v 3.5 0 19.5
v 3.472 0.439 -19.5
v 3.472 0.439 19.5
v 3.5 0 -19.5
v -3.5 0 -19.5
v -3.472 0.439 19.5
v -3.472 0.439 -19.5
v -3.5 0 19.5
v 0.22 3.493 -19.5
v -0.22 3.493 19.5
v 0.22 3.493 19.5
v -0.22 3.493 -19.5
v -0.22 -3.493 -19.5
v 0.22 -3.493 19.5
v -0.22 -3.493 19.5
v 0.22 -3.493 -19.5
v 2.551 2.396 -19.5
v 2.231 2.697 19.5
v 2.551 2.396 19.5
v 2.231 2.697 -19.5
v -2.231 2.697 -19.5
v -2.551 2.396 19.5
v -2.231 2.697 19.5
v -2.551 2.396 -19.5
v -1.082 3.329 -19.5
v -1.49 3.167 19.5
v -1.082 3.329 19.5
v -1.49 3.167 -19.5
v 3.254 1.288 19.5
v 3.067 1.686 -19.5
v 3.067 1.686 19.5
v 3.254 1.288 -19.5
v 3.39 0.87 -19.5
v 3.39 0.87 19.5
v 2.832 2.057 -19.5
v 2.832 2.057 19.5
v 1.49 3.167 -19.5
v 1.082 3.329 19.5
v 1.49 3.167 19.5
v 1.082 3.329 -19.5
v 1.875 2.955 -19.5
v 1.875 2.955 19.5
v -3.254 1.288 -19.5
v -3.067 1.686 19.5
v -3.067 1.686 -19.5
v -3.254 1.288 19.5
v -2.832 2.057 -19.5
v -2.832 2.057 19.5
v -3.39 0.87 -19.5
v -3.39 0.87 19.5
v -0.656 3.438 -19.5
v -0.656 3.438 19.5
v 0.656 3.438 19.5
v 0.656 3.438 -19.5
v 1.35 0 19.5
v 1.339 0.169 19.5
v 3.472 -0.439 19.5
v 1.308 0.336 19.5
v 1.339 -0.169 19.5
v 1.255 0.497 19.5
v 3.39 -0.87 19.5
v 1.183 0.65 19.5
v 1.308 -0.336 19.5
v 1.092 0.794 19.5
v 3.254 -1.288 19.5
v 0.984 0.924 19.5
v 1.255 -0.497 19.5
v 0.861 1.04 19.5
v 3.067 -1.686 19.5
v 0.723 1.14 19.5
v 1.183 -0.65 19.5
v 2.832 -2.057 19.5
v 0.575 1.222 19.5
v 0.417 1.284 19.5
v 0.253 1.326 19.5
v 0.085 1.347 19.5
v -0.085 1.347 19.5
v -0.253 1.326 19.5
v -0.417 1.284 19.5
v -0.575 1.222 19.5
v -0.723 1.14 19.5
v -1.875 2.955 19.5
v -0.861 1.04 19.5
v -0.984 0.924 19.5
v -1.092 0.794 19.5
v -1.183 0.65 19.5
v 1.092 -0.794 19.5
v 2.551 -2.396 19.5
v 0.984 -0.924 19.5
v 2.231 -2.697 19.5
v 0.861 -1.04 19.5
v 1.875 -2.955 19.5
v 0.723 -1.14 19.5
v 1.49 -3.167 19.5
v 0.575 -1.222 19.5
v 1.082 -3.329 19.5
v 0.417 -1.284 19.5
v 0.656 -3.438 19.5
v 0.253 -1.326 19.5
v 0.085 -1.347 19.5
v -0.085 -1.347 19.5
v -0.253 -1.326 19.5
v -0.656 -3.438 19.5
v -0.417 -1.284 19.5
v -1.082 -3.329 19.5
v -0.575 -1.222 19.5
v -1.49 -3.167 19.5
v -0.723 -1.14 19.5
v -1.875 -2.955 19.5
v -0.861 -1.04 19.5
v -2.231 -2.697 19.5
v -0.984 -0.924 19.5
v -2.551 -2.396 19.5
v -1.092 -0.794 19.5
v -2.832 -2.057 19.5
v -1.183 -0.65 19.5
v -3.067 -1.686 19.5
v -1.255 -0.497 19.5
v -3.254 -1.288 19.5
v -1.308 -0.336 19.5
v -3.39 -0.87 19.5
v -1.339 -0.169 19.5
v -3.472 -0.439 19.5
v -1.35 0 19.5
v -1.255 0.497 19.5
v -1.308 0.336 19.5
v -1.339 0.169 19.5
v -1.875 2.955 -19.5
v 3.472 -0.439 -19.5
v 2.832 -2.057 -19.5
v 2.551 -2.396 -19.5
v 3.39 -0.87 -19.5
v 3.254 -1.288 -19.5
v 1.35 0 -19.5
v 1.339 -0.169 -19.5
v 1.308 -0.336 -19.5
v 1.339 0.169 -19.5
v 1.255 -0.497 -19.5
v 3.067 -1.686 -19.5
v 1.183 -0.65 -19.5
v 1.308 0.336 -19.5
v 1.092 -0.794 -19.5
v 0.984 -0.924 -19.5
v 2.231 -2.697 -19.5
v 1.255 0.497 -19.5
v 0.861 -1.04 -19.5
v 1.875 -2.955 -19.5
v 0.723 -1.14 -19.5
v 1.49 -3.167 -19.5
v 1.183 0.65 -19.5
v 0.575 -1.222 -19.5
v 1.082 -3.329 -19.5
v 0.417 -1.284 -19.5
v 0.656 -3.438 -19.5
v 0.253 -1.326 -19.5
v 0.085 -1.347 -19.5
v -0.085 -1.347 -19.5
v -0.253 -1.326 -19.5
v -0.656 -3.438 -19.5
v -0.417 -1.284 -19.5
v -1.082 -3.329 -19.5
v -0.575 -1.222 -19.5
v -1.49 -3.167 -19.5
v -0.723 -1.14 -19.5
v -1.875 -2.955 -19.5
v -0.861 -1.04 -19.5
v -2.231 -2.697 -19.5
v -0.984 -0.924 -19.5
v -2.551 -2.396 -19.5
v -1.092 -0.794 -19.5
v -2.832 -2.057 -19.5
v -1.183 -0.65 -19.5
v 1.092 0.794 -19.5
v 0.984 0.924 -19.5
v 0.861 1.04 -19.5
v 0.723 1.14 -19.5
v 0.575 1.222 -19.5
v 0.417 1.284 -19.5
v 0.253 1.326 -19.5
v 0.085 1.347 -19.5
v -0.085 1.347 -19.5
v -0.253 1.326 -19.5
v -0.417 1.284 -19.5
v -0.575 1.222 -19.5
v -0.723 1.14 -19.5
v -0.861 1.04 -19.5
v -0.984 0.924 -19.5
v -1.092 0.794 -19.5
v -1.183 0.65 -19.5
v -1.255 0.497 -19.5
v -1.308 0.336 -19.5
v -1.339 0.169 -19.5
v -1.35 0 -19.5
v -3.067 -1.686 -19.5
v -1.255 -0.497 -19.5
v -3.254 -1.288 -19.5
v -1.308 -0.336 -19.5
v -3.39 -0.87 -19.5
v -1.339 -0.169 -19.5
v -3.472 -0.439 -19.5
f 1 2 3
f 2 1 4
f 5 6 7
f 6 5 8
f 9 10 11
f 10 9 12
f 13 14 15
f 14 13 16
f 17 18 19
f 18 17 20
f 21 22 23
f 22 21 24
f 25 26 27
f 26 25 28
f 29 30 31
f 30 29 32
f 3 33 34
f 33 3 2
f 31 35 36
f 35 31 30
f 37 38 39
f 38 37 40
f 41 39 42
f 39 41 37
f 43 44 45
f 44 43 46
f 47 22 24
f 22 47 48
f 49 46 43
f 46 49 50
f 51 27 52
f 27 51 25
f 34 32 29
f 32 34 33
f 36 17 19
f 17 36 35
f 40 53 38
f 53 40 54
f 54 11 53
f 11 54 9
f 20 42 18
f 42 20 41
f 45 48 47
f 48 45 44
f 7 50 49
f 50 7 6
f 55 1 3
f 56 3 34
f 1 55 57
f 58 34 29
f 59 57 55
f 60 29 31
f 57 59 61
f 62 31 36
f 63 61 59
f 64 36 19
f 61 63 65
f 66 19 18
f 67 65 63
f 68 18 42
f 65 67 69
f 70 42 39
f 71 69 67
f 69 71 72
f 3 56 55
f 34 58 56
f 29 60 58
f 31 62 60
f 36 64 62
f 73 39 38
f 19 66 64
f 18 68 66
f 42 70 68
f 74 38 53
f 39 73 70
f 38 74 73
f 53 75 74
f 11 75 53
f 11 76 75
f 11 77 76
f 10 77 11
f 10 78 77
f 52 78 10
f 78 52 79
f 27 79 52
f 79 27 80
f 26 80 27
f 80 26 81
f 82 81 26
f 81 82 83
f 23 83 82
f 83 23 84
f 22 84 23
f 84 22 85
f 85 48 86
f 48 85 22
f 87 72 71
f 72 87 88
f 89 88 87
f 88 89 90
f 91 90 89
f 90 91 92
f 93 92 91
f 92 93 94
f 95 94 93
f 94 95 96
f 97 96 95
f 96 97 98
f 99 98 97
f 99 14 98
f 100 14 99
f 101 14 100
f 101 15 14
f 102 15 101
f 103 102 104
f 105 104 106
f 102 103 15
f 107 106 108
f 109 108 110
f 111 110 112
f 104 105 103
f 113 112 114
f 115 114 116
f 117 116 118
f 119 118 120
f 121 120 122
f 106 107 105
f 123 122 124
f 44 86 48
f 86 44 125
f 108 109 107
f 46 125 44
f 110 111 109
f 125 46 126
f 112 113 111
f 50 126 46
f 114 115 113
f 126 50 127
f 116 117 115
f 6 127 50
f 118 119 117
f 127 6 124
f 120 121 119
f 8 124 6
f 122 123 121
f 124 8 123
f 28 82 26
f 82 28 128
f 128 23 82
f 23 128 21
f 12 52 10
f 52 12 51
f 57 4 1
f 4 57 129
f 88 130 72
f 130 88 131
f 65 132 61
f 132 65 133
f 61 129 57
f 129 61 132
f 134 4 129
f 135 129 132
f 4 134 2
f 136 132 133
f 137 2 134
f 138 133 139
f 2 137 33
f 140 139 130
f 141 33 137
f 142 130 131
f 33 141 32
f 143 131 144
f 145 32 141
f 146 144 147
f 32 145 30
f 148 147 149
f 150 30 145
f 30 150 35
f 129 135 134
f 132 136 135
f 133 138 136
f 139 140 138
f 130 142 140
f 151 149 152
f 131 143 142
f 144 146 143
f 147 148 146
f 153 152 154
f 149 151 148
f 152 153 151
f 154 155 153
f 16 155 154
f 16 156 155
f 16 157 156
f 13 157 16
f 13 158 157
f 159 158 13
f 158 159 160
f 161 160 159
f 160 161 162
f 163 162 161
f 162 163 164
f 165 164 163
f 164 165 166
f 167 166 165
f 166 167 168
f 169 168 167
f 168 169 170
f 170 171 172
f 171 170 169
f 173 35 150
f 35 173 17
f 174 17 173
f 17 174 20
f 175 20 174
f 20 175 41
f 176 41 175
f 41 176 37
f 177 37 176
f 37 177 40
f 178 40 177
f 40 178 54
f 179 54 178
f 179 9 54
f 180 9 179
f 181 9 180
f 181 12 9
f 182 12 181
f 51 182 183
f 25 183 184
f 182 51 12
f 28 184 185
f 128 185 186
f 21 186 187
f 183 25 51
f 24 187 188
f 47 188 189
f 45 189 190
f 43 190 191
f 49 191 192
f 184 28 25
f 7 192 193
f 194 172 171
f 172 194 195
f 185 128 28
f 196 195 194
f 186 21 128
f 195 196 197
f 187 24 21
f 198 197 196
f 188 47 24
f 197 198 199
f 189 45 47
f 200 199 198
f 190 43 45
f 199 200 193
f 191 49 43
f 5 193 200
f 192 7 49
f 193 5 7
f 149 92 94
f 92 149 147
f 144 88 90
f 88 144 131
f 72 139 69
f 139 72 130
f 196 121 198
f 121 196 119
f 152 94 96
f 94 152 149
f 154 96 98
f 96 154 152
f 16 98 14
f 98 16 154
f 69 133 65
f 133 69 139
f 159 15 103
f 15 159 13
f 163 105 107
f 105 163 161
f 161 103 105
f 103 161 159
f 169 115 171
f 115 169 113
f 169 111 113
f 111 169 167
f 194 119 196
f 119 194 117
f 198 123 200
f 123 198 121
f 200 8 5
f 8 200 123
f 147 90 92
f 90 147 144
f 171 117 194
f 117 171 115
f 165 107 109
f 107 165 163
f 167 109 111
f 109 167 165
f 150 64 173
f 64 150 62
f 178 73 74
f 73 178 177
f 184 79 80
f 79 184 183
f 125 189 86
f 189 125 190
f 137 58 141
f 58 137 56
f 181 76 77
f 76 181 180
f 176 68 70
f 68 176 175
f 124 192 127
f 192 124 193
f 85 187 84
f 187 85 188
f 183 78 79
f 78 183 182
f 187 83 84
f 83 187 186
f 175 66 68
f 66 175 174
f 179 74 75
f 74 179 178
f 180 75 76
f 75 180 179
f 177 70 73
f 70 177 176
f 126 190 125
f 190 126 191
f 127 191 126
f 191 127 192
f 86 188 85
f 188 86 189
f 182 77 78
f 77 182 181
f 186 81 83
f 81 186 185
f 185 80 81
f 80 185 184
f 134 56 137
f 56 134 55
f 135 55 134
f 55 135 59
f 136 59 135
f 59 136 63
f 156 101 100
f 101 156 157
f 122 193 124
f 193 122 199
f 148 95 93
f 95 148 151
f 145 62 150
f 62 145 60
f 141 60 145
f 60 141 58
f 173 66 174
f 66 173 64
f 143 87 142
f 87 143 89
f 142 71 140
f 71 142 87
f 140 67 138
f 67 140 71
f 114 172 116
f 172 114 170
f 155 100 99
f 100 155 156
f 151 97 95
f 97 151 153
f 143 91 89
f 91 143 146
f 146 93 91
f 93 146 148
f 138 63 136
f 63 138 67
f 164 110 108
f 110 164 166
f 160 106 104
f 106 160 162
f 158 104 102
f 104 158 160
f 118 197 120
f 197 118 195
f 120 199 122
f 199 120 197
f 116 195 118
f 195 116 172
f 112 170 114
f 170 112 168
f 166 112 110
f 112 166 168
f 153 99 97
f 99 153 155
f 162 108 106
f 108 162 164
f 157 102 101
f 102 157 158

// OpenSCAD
$fn = 50;


difference() {
	union() {
		translate(v = [0, 0, -19.5000000000]) {
			cylinder(h = 39, r = 3.5000000000);
		}
	}
	union() {
		translate(v = [0, 0, -100.0000000000]) {
			cylinder(h = 200, r = 1.3500000000);
		}
	}
}
